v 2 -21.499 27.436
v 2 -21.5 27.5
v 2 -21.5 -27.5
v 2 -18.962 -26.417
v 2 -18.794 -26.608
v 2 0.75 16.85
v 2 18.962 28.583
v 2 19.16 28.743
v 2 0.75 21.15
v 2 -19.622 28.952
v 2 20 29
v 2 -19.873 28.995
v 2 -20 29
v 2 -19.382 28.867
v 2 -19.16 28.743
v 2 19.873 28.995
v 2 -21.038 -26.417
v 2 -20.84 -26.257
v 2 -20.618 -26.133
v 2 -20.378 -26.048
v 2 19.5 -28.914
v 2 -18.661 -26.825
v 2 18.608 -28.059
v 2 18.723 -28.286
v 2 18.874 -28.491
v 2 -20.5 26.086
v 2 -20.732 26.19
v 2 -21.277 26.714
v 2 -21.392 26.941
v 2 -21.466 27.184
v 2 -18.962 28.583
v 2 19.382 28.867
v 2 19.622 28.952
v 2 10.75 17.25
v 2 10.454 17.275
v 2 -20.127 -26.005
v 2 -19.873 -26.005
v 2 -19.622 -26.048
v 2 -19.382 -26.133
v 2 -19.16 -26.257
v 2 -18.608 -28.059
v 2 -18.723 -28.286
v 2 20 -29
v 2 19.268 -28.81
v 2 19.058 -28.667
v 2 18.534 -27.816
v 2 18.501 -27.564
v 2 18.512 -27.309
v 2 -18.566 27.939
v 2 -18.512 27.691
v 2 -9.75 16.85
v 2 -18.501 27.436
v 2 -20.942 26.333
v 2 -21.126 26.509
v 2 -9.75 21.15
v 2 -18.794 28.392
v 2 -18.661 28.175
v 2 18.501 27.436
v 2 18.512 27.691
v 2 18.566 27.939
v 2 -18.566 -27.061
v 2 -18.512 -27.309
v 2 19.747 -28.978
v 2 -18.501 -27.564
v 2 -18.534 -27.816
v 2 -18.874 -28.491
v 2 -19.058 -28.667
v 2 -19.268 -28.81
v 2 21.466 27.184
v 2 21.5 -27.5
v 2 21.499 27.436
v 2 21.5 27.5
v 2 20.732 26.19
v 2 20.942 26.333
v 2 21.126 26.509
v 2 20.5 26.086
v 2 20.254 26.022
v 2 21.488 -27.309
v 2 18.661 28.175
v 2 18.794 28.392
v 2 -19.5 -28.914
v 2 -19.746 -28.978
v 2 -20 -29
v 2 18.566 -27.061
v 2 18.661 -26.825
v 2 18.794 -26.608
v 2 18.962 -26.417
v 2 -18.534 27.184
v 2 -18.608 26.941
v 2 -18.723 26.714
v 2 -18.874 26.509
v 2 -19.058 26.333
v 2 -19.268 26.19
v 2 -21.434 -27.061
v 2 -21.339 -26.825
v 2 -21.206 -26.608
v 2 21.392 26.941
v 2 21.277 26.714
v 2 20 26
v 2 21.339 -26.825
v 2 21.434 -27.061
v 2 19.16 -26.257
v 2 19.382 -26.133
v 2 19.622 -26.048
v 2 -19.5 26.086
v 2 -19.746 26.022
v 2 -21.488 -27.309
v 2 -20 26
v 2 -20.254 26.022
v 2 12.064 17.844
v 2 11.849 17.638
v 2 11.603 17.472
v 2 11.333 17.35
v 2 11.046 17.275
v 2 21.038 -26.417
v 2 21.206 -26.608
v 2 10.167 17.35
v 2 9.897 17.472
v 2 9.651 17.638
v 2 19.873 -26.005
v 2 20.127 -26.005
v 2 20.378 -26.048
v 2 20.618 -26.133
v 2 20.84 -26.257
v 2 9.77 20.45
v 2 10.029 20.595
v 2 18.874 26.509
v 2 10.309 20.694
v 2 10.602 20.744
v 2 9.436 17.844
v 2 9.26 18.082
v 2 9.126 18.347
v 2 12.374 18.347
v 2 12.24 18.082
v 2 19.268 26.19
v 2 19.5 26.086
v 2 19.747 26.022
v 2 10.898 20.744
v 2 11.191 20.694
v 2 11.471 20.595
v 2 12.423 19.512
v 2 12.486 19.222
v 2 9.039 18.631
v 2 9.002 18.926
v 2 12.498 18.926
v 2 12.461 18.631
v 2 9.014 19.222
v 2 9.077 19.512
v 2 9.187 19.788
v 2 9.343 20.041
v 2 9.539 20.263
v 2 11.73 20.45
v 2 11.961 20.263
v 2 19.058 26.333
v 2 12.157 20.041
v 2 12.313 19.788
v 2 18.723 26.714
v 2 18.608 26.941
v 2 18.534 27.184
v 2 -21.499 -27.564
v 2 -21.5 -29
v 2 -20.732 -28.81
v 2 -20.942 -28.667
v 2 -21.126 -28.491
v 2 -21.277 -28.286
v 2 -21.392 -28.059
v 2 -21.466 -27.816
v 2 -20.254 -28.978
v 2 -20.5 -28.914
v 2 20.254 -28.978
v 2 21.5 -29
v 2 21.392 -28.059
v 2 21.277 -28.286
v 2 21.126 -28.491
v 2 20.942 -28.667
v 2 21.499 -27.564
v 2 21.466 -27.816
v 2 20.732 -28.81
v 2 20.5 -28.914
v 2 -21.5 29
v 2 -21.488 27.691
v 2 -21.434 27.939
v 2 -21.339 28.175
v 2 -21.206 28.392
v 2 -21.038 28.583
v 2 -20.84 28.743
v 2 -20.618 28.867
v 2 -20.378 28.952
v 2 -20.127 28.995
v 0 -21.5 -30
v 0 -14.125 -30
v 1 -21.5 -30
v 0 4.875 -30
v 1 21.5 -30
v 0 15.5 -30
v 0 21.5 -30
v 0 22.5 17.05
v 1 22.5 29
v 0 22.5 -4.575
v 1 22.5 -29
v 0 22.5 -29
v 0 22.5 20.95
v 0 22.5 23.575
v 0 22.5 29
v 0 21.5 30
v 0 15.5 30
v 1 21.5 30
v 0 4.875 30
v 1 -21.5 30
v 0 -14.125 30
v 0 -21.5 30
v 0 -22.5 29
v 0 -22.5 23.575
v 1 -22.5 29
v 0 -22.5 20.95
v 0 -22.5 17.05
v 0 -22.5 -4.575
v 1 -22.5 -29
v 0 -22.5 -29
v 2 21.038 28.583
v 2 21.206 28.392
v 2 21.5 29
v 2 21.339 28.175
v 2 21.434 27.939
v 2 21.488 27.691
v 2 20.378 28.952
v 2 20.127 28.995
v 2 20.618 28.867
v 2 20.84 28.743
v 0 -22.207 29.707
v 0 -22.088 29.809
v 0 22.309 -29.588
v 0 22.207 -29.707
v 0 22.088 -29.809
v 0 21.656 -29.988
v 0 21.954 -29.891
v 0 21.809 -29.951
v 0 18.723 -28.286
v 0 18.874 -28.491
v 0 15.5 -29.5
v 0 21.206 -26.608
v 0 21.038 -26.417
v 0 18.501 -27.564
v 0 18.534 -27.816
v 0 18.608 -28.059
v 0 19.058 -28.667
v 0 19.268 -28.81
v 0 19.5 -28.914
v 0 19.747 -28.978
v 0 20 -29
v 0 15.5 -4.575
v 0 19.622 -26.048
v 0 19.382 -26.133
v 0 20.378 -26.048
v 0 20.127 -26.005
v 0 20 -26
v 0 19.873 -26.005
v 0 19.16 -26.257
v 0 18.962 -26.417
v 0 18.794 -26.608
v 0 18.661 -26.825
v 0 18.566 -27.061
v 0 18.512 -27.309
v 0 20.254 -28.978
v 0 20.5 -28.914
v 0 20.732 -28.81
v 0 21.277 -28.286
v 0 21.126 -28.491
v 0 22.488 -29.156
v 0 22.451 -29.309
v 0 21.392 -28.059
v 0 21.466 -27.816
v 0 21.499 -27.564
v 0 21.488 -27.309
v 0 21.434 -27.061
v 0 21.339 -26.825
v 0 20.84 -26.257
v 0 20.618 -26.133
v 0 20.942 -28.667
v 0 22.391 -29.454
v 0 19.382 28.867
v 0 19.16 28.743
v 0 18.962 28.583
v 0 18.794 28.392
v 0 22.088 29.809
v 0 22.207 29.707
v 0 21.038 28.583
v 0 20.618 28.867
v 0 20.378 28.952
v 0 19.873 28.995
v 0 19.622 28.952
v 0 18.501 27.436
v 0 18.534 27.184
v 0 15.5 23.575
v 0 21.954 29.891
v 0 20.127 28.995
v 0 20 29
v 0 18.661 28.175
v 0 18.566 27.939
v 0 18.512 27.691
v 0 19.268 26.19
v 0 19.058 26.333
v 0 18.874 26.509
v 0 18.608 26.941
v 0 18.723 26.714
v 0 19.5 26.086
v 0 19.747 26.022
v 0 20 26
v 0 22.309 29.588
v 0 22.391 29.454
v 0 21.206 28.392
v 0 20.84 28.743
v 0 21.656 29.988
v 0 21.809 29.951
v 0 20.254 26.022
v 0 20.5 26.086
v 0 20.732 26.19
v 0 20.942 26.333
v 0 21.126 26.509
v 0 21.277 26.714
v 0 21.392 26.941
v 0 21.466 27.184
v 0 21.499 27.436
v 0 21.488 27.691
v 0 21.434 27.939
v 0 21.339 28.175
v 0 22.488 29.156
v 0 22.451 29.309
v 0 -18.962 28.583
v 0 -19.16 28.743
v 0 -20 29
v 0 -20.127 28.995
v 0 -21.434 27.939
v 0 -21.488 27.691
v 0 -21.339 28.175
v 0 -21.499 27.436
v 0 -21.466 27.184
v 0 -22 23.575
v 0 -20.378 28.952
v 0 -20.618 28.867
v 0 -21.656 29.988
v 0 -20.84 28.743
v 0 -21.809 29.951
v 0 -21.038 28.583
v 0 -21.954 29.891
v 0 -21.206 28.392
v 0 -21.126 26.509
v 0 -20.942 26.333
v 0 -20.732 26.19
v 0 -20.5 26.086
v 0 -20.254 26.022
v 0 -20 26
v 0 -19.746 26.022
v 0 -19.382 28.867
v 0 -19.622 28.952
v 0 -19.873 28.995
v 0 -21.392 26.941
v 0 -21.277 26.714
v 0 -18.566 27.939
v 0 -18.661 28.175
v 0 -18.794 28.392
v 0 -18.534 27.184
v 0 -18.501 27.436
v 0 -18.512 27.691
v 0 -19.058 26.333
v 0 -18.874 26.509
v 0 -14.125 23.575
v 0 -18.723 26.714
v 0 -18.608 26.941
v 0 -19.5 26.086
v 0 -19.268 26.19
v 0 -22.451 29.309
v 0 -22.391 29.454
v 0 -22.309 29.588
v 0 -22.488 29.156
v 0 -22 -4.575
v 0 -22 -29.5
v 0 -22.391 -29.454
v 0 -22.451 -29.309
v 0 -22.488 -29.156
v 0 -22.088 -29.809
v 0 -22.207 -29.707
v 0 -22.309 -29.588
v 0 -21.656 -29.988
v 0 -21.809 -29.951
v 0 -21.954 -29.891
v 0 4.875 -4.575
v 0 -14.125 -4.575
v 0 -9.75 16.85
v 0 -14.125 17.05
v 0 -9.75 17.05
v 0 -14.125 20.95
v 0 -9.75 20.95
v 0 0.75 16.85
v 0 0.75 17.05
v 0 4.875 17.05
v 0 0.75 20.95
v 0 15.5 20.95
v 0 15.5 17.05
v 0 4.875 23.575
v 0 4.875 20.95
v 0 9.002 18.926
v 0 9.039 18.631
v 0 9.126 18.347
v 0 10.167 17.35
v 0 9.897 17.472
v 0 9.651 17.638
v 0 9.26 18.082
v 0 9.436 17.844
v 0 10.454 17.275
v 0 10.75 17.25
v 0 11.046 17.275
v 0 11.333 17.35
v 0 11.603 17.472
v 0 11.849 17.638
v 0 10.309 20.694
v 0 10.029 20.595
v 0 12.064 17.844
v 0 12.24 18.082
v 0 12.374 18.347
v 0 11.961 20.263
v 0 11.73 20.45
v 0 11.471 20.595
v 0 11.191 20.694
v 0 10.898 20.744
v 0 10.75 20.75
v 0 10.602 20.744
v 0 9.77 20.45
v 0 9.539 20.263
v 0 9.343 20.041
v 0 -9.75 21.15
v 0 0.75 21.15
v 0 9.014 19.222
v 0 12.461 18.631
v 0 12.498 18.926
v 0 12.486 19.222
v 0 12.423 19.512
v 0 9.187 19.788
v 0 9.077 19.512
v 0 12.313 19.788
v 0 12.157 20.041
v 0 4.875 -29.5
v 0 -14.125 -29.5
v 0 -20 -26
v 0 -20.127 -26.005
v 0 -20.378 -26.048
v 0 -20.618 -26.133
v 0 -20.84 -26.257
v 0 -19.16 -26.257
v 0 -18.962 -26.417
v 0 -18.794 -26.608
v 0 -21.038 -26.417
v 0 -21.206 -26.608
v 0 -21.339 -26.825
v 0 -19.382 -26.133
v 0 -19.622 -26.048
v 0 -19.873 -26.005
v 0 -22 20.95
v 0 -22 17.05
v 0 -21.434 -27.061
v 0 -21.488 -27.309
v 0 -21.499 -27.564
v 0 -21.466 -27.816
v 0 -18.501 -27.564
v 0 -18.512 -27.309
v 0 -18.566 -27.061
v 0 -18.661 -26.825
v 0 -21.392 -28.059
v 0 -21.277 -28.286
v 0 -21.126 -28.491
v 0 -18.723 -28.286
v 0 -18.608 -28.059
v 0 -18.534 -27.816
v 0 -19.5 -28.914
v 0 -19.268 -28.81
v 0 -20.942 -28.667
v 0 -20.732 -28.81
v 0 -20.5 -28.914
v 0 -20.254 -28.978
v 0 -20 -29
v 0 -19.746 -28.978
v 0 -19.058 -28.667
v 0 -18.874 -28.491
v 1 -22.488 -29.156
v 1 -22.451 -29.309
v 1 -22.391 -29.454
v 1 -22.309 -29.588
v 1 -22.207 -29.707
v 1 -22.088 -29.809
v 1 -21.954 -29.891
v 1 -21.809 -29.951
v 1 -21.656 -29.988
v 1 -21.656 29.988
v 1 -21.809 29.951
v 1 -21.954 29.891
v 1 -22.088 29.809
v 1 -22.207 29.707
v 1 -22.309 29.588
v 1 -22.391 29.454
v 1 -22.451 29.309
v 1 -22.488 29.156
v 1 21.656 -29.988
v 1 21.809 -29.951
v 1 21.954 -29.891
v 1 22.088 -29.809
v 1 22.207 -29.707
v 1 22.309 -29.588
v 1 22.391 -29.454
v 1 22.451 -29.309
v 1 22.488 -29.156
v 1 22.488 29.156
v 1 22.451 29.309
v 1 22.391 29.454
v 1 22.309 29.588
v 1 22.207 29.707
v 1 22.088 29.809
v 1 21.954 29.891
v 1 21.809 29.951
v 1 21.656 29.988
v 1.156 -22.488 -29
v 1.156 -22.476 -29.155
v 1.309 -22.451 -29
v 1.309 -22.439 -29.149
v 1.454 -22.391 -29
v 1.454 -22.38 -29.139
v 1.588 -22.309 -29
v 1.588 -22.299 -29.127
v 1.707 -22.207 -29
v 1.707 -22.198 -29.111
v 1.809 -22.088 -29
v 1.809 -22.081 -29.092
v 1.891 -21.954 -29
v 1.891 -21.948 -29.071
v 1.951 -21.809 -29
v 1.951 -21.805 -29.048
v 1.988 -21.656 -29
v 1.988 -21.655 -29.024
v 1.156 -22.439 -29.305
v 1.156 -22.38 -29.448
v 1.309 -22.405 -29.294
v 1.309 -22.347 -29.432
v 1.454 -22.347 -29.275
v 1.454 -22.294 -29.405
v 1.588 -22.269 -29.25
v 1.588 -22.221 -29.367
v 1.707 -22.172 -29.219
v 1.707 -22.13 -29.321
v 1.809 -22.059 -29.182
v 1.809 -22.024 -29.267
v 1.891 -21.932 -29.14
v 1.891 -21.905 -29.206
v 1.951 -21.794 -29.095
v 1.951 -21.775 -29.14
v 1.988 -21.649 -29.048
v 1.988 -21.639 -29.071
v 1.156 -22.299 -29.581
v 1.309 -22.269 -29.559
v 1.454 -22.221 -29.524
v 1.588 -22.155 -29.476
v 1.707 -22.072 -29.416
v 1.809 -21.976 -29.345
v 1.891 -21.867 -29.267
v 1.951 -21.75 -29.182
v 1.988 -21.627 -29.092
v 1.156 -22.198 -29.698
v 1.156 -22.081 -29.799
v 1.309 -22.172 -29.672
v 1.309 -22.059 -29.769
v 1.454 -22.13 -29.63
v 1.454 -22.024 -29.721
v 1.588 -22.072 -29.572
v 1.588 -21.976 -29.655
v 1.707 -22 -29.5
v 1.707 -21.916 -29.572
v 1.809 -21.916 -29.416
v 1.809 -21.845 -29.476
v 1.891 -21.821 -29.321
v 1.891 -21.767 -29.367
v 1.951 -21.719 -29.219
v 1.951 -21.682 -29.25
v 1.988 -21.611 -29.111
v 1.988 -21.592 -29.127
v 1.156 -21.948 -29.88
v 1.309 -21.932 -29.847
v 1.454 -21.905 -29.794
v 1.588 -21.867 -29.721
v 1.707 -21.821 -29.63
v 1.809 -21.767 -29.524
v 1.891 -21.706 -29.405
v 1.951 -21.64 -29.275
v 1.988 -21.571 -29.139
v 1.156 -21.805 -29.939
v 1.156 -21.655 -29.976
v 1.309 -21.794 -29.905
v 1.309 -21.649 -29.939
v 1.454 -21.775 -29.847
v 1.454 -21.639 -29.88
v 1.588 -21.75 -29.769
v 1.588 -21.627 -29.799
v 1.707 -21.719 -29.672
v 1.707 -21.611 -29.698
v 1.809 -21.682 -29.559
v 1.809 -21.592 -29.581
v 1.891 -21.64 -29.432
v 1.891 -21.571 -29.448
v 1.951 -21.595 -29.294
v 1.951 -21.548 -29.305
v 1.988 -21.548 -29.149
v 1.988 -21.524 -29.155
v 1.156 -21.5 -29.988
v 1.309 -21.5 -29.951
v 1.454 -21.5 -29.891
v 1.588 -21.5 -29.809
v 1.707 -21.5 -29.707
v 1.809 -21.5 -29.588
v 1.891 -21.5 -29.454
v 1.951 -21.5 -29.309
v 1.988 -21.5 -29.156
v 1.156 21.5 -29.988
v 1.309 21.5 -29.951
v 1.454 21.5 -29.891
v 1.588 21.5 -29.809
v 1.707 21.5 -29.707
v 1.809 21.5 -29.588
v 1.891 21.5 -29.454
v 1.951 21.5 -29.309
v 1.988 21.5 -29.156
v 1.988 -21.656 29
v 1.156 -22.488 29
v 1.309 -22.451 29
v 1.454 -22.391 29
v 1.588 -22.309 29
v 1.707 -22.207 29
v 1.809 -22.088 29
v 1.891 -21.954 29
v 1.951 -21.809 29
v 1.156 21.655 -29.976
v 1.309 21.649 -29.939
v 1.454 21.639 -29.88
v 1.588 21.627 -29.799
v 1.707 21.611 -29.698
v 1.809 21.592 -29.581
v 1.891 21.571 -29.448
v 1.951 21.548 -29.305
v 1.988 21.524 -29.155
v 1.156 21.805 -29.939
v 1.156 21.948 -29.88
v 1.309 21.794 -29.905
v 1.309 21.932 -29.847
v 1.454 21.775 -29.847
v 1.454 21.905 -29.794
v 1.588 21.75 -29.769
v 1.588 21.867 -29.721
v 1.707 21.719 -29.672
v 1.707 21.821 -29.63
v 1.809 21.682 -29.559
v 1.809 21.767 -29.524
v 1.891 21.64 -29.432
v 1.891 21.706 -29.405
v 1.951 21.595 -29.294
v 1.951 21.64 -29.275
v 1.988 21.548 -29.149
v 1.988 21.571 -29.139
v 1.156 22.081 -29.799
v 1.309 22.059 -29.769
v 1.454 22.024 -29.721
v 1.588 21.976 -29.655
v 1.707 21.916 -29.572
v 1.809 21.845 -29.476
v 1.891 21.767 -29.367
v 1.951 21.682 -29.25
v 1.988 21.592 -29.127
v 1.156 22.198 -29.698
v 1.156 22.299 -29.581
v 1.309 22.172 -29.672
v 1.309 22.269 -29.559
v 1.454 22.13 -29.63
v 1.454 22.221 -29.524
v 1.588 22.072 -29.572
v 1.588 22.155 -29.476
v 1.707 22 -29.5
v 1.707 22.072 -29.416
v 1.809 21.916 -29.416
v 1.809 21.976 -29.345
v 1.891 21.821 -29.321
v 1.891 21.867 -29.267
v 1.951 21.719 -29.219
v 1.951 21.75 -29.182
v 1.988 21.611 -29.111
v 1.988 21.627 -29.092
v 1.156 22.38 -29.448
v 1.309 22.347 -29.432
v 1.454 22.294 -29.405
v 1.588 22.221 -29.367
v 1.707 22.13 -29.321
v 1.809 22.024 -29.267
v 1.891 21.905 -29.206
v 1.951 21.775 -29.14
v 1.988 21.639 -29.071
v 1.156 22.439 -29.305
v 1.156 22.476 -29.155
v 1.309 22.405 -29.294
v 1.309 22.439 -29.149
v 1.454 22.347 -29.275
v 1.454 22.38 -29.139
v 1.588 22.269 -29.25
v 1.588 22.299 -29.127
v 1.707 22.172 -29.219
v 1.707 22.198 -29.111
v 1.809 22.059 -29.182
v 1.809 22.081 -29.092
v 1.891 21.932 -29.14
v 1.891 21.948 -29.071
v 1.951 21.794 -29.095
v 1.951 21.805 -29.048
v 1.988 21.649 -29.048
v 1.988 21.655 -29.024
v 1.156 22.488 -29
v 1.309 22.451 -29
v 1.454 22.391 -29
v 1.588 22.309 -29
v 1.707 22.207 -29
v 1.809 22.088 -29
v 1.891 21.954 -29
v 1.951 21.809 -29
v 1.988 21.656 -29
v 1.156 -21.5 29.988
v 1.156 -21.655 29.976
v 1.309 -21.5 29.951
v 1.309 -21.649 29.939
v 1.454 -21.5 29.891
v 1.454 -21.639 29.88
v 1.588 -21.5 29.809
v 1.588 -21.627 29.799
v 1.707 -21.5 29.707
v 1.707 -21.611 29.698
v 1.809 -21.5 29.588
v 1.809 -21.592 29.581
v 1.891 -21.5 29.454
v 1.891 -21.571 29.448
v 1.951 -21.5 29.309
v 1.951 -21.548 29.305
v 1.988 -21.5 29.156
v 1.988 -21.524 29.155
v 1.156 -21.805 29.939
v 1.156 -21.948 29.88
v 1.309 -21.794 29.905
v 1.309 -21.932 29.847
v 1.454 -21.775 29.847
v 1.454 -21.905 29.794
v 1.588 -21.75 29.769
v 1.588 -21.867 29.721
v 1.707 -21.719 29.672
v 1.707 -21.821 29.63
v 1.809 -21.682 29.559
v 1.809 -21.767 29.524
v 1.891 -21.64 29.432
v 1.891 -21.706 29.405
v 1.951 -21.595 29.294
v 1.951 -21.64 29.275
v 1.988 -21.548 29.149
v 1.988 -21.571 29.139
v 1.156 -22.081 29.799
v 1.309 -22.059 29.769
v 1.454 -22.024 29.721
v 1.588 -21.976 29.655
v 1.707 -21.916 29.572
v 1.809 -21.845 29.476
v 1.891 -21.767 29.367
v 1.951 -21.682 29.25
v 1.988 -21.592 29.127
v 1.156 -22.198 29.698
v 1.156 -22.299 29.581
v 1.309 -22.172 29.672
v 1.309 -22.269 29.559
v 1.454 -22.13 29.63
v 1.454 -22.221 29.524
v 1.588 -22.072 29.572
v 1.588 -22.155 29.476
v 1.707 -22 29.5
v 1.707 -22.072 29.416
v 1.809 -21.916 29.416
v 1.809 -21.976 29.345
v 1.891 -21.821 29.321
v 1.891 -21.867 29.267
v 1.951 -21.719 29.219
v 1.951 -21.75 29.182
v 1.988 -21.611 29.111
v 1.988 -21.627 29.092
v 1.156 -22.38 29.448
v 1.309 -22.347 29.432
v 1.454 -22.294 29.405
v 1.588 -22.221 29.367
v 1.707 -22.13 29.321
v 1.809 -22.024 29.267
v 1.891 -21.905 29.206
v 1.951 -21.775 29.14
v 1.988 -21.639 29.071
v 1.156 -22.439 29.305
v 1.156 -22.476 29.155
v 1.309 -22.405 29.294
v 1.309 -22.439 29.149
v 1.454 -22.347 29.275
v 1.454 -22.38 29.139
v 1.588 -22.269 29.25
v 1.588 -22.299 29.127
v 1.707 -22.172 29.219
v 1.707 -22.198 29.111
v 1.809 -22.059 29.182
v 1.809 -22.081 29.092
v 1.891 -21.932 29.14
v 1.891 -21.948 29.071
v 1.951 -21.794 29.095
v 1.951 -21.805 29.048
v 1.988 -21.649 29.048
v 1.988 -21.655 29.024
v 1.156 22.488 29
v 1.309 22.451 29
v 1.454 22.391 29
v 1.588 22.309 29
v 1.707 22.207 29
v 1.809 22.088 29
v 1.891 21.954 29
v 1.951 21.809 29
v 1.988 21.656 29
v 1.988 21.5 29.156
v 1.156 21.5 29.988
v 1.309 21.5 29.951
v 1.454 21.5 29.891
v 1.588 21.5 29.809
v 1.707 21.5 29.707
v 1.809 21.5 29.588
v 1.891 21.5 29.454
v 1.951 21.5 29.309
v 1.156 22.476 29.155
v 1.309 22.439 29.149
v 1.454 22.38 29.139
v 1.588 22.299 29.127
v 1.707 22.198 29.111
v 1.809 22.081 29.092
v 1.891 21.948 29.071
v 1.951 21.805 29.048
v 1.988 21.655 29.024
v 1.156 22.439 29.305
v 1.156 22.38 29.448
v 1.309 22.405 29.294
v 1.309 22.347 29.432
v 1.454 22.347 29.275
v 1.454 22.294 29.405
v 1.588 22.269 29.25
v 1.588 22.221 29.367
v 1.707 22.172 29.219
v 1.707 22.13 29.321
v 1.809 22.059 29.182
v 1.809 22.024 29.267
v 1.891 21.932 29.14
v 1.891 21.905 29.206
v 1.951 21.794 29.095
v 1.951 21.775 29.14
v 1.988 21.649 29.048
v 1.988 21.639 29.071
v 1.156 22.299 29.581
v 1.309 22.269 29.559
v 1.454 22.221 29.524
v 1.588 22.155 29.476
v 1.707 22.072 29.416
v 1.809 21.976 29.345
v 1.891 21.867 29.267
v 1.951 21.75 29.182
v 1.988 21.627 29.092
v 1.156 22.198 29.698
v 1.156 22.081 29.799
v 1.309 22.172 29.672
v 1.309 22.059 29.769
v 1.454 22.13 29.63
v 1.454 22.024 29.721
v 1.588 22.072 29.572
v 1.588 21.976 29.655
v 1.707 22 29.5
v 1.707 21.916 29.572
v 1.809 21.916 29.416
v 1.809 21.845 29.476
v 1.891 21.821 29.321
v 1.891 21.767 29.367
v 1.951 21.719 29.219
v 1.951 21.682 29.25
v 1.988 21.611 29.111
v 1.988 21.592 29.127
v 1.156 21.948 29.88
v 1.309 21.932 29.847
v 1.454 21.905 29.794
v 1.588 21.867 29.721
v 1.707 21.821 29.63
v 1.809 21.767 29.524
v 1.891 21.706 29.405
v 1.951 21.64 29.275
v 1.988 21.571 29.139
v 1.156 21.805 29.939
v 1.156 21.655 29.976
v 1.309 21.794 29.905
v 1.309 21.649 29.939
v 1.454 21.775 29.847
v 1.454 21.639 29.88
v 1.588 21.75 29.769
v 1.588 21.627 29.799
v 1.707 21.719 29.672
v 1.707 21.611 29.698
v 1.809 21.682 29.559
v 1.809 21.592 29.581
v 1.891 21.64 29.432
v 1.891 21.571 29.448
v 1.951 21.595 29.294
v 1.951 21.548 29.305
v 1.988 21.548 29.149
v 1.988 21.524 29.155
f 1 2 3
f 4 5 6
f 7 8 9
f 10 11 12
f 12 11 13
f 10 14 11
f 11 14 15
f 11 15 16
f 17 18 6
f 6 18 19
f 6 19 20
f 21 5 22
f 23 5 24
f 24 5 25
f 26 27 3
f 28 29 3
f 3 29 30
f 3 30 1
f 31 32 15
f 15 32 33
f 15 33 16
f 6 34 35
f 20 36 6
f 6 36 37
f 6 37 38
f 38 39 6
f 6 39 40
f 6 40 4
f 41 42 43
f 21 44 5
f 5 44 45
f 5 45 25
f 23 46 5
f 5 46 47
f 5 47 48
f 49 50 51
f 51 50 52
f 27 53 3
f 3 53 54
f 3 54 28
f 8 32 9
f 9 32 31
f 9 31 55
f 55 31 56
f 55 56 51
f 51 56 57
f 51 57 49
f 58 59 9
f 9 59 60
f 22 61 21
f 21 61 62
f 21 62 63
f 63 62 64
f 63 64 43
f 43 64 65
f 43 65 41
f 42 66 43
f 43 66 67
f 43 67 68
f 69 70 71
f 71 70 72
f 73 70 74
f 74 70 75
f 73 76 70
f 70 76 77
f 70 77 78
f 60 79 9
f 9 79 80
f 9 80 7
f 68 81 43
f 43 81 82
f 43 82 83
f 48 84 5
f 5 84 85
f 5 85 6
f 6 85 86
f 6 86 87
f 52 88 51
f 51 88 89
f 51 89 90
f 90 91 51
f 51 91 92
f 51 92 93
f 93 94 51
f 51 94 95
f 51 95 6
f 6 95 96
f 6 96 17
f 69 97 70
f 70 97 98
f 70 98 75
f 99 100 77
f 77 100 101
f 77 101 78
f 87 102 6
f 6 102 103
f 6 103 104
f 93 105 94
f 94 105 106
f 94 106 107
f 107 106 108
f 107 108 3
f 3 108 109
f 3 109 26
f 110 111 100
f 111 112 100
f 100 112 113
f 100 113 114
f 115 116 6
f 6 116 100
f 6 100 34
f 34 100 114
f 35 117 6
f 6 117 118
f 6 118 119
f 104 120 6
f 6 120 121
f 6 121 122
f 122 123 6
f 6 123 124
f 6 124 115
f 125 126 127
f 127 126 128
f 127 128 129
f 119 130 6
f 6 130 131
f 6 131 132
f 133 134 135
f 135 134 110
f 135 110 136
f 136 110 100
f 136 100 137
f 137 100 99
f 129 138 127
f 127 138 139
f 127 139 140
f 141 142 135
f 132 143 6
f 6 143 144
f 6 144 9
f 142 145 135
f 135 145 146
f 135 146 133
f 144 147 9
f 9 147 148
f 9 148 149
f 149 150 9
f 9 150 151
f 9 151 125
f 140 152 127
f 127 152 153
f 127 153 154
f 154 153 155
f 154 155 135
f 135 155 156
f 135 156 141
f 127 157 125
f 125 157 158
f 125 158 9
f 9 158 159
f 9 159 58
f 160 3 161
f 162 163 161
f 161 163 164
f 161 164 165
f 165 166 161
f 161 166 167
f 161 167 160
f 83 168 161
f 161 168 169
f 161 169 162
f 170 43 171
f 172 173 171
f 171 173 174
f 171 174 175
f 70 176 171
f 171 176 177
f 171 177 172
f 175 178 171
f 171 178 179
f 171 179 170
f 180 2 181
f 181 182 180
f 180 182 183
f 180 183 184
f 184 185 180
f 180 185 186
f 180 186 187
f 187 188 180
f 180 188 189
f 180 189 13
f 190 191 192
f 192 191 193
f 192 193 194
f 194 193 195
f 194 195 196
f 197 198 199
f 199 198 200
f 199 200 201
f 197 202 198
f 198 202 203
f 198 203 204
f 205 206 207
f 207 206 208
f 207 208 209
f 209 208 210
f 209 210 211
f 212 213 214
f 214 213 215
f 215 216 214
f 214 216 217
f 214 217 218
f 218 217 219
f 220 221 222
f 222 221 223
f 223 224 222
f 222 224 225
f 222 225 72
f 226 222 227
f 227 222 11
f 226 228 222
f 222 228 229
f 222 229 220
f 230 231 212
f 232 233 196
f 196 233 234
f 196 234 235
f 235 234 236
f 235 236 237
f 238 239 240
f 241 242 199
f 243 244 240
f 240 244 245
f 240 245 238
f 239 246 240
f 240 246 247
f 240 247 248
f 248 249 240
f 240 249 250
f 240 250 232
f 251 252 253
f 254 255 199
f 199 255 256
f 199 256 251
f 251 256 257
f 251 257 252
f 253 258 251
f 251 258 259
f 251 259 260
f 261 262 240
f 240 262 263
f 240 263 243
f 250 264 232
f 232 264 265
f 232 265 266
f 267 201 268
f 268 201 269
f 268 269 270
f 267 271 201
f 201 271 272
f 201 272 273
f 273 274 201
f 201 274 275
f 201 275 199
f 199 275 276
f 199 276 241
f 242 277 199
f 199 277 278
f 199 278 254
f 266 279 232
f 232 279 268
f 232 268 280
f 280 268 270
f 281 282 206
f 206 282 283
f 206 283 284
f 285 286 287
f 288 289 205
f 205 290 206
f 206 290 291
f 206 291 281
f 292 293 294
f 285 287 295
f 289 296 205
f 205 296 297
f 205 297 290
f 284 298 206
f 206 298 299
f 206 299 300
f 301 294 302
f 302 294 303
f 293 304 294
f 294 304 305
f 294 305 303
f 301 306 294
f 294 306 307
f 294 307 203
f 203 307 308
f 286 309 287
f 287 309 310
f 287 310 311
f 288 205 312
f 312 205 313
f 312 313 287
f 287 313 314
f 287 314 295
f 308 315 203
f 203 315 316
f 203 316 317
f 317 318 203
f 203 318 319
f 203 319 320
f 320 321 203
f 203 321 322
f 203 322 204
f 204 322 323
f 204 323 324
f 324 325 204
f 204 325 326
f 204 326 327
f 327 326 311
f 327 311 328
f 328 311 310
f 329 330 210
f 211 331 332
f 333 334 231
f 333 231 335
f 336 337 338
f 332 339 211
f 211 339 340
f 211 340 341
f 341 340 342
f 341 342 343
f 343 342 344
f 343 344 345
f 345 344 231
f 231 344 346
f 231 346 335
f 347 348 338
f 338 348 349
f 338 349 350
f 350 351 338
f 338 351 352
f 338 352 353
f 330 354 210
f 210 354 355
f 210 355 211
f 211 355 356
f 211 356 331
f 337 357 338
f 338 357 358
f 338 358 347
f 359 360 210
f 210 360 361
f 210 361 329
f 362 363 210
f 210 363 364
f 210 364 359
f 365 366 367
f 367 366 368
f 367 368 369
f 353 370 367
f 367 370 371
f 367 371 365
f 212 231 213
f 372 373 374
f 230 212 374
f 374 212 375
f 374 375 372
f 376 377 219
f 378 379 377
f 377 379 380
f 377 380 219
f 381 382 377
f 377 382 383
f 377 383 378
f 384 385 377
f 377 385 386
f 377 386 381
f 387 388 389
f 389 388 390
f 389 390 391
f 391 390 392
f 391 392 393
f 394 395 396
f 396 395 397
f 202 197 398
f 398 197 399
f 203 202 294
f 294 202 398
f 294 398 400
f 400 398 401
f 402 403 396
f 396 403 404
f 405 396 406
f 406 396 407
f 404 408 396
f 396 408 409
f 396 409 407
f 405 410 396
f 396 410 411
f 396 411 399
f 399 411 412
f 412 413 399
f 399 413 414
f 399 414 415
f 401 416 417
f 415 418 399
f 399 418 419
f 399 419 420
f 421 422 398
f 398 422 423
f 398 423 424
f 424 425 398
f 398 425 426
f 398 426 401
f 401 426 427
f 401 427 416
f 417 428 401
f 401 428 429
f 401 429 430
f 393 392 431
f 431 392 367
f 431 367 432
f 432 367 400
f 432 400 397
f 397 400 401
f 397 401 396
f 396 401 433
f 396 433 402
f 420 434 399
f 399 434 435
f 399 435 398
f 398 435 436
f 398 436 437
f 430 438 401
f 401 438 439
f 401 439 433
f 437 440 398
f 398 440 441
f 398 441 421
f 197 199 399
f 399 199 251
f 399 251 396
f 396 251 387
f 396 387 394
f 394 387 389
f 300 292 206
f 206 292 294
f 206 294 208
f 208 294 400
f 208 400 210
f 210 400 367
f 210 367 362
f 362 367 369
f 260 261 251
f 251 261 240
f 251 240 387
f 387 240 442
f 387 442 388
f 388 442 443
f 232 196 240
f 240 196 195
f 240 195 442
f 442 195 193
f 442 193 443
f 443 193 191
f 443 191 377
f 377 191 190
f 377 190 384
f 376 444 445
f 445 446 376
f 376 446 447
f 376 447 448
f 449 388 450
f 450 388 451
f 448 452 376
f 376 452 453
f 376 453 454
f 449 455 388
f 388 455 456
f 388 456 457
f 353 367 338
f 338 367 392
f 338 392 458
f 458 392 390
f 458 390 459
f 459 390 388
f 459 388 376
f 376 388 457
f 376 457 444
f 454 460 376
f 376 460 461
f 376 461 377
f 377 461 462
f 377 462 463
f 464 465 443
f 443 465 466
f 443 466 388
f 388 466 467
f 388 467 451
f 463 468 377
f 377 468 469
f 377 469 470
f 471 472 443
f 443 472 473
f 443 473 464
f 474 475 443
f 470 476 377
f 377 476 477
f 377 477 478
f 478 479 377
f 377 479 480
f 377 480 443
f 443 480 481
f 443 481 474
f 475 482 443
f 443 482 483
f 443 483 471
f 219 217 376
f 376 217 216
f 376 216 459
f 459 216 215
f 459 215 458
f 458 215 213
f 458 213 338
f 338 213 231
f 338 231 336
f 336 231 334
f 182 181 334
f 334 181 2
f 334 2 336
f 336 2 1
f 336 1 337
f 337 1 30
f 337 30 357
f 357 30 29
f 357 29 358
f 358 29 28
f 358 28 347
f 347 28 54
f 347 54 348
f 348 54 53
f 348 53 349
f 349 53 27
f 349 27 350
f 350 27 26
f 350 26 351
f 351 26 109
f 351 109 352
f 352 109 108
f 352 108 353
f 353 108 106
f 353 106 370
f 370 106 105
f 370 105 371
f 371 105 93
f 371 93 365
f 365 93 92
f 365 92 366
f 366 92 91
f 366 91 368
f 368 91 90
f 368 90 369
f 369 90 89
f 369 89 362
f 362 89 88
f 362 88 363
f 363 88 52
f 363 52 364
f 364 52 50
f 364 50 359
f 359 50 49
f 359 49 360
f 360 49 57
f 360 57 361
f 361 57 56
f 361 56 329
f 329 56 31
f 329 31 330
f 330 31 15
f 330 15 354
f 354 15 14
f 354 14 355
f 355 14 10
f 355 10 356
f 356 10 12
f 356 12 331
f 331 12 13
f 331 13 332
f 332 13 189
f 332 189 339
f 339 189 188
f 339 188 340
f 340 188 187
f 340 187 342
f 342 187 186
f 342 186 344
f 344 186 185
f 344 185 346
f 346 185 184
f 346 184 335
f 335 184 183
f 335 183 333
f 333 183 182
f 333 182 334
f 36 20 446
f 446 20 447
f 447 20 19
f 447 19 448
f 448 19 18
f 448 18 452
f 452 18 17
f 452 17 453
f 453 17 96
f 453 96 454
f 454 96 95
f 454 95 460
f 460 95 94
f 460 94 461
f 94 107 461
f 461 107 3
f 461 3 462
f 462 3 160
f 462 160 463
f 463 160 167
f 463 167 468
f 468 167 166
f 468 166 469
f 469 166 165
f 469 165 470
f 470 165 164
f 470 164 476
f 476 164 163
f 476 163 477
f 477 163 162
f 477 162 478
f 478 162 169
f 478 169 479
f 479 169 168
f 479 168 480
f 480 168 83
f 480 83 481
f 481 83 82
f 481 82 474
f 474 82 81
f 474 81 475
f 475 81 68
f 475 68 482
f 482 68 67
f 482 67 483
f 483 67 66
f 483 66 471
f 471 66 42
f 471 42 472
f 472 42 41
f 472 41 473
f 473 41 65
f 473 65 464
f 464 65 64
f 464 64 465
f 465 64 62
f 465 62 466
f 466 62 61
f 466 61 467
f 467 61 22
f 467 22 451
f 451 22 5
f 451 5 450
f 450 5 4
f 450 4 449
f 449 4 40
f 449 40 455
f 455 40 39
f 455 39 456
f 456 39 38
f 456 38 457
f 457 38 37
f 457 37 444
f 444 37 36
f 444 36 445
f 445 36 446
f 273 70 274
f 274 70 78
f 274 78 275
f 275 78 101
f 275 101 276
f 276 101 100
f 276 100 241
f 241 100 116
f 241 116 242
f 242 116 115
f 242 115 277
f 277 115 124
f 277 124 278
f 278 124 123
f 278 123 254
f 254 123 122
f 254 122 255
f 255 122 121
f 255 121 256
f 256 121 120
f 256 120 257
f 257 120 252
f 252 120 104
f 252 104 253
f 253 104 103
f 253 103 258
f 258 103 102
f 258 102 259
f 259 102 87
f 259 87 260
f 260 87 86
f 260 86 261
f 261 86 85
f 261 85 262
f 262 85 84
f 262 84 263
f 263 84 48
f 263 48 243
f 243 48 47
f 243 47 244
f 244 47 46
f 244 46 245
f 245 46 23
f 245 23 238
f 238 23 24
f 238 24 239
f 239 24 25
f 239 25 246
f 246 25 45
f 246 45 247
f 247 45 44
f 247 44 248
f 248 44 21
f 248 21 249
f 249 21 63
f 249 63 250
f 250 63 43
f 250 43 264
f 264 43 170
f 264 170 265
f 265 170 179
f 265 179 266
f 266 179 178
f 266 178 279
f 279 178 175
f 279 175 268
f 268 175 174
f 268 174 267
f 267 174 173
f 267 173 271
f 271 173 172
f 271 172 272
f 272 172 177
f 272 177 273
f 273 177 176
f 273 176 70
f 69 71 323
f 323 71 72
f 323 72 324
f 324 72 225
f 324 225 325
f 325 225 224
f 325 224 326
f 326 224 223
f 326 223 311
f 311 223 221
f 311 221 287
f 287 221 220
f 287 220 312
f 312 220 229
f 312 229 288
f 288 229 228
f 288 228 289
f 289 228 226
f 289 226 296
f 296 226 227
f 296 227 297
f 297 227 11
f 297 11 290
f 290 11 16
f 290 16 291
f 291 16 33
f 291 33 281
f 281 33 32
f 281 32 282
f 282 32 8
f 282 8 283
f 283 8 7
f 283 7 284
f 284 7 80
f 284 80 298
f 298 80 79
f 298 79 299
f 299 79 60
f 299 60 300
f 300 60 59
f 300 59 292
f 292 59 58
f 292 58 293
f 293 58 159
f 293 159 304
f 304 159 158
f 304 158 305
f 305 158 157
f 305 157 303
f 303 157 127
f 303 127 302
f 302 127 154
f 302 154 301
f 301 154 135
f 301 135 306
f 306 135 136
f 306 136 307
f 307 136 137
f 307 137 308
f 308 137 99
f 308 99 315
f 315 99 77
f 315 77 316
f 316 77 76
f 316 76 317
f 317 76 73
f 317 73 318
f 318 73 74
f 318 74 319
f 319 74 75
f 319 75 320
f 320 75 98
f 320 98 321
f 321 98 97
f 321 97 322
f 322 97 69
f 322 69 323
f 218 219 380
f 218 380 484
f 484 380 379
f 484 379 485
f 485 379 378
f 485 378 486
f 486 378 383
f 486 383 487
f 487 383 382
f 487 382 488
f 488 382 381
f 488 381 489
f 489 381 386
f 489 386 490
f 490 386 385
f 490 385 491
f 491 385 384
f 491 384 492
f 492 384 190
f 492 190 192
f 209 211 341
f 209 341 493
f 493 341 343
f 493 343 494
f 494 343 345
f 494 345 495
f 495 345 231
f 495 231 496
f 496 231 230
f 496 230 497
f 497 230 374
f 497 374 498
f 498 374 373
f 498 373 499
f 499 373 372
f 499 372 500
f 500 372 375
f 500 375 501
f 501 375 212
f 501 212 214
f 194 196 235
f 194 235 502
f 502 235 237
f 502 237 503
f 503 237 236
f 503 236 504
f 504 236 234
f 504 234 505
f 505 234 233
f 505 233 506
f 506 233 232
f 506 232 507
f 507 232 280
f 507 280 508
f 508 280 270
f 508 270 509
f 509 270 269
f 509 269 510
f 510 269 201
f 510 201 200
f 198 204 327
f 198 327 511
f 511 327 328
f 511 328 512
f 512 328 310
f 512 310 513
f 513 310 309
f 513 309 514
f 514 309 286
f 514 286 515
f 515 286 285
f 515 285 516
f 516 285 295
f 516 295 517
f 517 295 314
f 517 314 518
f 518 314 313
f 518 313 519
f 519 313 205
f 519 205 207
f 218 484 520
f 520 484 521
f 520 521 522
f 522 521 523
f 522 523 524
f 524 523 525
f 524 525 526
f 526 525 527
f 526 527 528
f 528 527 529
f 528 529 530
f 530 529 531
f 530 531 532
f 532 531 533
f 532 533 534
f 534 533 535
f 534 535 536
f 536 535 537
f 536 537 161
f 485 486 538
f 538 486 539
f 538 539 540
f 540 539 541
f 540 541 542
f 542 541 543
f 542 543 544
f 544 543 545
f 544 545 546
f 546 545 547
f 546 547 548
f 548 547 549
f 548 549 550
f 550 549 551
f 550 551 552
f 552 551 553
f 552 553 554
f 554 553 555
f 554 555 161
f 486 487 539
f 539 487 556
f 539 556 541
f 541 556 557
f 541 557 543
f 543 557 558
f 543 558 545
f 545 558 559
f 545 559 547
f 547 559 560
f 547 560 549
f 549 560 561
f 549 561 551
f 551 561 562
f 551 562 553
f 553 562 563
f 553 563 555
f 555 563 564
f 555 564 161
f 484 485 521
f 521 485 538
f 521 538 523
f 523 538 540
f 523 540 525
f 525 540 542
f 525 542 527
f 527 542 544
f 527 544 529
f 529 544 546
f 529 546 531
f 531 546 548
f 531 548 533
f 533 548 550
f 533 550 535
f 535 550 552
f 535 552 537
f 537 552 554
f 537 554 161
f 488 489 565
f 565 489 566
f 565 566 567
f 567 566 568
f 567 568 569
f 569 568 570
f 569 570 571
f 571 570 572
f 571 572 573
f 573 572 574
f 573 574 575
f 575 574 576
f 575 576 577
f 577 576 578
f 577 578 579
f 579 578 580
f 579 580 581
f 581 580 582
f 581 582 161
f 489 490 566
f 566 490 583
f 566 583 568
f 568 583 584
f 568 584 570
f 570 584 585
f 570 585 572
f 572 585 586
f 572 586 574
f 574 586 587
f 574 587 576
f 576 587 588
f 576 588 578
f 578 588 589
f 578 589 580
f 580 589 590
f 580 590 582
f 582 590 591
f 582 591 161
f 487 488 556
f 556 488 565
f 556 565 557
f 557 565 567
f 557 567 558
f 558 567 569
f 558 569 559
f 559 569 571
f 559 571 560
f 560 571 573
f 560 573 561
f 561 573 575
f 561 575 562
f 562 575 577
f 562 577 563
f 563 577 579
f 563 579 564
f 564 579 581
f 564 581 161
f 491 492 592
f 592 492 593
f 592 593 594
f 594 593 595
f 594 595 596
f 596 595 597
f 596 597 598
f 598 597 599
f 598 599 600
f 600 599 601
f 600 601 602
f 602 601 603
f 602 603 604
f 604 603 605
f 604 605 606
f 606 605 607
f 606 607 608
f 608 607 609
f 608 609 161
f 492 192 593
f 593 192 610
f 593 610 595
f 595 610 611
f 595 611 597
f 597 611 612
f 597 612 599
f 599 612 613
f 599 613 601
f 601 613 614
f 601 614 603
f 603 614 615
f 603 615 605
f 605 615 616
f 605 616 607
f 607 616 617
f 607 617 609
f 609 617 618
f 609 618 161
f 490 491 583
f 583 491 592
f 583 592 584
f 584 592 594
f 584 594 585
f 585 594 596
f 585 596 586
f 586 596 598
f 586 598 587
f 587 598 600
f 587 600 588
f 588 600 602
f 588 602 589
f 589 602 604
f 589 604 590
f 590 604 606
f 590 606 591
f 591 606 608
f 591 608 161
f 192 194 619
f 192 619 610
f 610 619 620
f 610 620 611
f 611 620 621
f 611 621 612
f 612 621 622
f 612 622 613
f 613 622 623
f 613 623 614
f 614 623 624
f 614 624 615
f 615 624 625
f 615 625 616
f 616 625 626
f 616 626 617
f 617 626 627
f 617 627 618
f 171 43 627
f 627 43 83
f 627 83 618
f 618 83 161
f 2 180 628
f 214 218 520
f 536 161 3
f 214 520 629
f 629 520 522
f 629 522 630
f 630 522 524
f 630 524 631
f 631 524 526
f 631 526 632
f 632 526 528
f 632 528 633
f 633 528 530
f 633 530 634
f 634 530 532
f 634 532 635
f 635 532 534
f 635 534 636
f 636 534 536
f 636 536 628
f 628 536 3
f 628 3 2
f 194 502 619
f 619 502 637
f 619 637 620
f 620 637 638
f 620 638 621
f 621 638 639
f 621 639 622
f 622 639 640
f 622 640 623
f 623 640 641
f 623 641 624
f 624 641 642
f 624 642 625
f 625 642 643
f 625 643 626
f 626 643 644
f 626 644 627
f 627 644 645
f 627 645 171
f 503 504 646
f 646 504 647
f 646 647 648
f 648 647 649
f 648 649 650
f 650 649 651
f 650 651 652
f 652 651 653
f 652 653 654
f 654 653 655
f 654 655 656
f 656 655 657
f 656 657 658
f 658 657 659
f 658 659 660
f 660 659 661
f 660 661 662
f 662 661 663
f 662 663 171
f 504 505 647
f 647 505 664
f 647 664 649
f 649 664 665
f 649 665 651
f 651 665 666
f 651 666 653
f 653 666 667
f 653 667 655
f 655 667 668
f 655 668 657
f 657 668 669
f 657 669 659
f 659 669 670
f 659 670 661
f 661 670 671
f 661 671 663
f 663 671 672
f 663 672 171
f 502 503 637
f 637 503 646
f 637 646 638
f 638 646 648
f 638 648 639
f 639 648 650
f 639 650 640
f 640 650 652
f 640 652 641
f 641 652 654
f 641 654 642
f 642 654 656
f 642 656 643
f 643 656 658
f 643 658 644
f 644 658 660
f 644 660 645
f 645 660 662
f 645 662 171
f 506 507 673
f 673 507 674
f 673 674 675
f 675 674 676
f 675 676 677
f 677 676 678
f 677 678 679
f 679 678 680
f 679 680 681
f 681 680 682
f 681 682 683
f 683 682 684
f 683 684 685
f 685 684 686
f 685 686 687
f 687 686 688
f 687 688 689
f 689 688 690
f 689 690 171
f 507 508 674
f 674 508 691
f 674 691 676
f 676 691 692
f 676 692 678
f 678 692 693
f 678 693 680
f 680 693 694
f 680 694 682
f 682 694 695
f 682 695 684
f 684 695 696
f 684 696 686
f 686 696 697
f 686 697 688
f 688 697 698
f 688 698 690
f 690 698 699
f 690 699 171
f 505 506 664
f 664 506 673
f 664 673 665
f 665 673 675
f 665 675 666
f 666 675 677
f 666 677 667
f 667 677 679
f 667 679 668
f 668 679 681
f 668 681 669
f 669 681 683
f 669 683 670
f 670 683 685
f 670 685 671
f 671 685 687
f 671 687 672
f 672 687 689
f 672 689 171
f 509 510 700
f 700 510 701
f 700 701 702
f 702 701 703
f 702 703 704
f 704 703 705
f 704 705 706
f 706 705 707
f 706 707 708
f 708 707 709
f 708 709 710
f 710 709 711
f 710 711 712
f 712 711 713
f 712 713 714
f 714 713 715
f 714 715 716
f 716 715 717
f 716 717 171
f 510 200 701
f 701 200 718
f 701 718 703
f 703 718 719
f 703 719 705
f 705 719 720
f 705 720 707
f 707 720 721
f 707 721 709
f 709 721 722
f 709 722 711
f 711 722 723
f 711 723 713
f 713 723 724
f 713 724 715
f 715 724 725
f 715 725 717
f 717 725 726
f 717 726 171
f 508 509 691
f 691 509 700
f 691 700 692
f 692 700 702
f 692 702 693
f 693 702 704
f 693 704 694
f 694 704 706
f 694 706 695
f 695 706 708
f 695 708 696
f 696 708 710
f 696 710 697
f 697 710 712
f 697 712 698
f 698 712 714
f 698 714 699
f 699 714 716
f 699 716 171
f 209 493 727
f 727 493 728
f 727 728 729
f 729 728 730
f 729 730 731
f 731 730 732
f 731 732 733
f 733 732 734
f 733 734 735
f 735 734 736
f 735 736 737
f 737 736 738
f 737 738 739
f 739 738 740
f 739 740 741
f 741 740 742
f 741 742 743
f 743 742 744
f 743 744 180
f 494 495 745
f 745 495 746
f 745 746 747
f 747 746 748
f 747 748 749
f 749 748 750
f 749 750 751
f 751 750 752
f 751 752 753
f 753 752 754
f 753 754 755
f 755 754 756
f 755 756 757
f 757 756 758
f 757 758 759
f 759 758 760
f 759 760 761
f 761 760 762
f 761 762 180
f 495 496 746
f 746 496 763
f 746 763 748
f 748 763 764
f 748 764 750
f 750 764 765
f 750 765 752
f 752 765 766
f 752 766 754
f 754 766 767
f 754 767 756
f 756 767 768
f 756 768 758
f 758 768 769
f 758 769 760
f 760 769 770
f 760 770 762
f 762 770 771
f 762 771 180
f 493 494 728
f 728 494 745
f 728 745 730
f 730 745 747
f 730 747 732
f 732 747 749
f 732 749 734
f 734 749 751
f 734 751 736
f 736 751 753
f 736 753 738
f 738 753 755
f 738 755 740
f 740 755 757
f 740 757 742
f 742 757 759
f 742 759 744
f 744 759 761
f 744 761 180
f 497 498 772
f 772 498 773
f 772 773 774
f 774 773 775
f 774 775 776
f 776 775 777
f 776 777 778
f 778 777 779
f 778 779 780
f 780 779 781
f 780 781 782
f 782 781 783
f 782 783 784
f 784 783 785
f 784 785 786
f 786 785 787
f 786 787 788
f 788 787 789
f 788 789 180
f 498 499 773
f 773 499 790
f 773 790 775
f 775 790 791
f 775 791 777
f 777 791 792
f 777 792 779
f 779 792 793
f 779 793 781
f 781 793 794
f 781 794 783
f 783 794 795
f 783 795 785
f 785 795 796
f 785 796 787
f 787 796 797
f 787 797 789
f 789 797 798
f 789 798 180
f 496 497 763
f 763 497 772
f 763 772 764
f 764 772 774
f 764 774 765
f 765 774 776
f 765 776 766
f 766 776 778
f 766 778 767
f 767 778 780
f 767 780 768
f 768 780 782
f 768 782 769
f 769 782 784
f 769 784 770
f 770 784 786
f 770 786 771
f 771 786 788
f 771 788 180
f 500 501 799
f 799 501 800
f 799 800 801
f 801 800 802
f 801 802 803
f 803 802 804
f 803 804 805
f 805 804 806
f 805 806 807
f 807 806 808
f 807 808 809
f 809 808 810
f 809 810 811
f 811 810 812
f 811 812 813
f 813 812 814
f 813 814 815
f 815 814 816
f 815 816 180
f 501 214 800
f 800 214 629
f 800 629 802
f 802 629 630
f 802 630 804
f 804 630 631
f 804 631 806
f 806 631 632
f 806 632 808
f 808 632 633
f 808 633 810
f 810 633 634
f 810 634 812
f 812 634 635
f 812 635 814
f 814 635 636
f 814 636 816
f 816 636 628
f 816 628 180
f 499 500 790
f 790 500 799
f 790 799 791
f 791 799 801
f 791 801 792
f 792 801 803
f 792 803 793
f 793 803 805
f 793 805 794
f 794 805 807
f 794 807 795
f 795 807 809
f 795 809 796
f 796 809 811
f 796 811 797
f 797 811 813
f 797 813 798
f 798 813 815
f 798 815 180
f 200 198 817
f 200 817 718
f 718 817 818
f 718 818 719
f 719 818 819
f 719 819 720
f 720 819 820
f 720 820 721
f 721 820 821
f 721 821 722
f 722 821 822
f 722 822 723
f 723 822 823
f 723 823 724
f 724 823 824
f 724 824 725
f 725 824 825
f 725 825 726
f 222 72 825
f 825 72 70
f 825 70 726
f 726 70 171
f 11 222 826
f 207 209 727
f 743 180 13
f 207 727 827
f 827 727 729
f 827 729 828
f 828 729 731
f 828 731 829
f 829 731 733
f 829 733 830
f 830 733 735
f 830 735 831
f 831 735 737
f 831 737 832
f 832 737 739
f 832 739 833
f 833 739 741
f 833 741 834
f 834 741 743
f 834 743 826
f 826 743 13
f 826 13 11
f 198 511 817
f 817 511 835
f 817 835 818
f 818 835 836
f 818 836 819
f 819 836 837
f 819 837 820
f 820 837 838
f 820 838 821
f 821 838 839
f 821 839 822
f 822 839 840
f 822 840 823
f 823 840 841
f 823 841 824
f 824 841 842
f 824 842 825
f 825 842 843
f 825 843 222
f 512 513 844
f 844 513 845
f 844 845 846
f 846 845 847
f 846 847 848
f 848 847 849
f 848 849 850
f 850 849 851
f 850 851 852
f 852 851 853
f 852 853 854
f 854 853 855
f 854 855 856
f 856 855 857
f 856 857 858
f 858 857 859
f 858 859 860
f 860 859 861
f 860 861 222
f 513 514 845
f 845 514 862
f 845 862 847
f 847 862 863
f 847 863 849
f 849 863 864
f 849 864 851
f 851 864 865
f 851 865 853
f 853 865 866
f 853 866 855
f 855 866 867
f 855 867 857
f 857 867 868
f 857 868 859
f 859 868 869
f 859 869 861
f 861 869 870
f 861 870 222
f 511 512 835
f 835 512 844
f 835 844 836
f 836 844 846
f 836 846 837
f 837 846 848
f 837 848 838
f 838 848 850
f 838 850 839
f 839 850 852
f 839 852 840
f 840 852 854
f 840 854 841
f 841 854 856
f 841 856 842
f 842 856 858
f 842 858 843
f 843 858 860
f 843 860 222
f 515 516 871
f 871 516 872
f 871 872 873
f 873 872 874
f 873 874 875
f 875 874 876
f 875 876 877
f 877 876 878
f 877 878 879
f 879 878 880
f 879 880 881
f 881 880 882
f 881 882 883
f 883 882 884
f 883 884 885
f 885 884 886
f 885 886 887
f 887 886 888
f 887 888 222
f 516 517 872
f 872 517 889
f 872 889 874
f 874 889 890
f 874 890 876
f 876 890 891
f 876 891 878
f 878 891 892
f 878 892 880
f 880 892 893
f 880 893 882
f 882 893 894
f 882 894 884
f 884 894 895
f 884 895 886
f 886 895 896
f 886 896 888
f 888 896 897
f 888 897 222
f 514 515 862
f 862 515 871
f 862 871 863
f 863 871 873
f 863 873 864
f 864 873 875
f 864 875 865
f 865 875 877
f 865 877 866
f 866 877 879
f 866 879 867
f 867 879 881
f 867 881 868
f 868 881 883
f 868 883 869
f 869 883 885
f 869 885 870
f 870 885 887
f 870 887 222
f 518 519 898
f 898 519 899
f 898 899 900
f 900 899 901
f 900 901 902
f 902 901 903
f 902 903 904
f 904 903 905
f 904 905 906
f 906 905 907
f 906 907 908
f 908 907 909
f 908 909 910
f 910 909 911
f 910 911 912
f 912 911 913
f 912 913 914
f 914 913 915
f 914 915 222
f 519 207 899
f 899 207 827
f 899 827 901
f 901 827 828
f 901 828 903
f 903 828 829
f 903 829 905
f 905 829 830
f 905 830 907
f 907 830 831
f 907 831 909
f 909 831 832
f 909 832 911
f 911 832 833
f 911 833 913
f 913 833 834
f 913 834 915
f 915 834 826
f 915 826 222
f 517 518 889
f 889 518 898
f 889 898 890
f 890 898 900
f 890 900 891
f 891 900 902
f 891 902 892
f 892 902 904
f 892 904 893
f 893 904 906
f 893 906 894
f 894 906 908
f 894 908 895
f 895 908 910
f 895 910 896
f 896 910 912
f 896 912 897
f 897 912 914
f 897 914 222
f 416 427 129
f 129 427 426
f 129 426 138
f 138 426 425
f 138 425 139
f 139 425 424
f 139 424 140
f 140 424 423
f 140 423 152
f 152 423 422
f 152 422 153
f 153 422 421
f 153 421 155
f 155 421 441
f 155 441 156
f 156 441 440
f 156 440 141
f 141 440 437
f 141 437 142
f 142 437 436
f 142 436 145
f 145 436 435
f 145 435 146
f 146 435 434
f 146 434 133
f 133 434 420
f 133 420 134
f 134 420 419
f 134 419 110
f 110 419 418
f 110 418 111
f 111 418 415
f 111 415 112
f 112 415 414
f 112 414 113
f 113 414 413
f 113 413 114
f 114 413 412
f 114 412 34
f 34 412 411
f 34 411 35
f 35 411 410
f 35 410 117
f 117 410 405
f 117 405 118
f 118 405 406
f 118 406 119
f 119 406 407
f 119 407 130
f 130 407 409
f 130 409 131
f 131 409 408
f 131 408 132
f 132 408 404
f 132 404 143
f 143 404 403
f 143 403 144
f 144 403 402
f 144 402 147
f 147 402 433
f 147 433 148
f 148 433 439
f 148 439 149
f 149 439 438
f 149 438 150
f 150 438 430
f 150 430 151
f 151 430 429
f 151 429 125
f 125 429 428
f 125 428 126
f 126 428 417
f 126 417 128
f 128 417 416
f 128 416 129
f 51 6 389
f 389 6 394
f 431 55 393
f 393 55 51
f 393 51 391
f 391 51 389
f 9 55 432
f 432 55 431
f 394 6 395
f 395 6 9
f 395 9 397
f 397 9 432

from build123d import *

# Parameters (mm, degrees)
SKETCH1_W                 = 60
SKETCH1_H                 = 45
BOSS_EXTRUDE1_DEPTH       = 2
F_3_0MM_DOWEL_HOLE1_D     = 3
F_3_0MM_DOWEL_HOLE1_DEPTH = 20
F_3_0MM_DOWEL_HOLE1_TIP   = 0.901290929
FILLET2_R                 = 1
FILLET1_R                 = 1
SKETCH4_R                 = 1.75
SKETCH4_W                 = 4.3
SKETCH4_H                 = 10.5
CUT_EXTRUDE1_DEPTH        = 3


with BuildPart() as part:
    # Sketch1 → Boss-Extrude1 (new body)
    with BuildSketch(Plane(origin=(0, 0, 0), x_dir=(0, 0, -1), z_dir=(1, 0, 0))):
        Rectangle(SKETCH1_W, SKETCH1_H)
    extrude(amount=BOSS_EXTRUDE1_DEPTH)

    # Ø3.0mm Dowel Hole1
    with Locations(Plane(origin=(2, 0, 0), x_dir=(0, 0, -1), z_dir=(1, 0, 0))):
        with Locations((-27.5, 20), (27.5, 20), (27.5, -20), (-27.5, -20)):
            Hole(F_3_0MM_DOWEL_HOLE1_D / 2, depth=F_3_0MM_DOWEL_HOLE1_DEPTH)
            with Locations((0, 0, -(F_3_0MM_DOWEL_HOLE1_DEPTH + F_3_0MM_DOWEL_HOLE1_TIP / 2))):  # 118° drill point
                Cone(0, F_3_0MM_DOWEL_HOLE1_D / 2, F_3_0MM_DOWEL_HOLE1_TIP, mode=Mode.SUBTRACT)

    # Fillet2
    fillet2_edges = [part.edges().sort_by_distance(p)[0] for p in [
        (1, -22.5, -30),
        (1, -22.5, 30),
        (1, 22.5, 30),
        (1, 22.5, -30),
    ]]
    fillet(fillet2_edges, radius=FILLET2_R)

    # Fillet1
    fillet1_edges = [part.edges().sort_by_distance(p)[0] for p in [
        (2, 0, -30),
        (2, -22.5, 0),
        (2, 22.5, 0),
        (2, 0, 30),
        (2, 22.207106781, 29.707106781),
        (2, 22.207106781, -29.707106781),
        (2, -22.207106781, 29.707106781),
        (2, -22.207106781, -29.707106781),
    ]]
    fillet(fillet1_edges, radius=FILLET1_R - 0.0001)  # a hair under: the kernel refuses the full size

    # Sketch4 → Cut-Extrude1 (cut)
    with BuildSketch(Plane(origin=(2, 0, 0), x_dir=(0, 0, -1), z_dir=(1, 0, 0))):
        with Locations((-19, 10.75)):
            Circle(SKETCH4_R)
        with Locations((-19, -4.5)):
            Rectangle(SKETCH4_W, SKETCH4_H)
    extrude(amount=-CUT_EXTRUDE1_DEPTH, mode=Mode.SUBTRACT)


solid = part.part
